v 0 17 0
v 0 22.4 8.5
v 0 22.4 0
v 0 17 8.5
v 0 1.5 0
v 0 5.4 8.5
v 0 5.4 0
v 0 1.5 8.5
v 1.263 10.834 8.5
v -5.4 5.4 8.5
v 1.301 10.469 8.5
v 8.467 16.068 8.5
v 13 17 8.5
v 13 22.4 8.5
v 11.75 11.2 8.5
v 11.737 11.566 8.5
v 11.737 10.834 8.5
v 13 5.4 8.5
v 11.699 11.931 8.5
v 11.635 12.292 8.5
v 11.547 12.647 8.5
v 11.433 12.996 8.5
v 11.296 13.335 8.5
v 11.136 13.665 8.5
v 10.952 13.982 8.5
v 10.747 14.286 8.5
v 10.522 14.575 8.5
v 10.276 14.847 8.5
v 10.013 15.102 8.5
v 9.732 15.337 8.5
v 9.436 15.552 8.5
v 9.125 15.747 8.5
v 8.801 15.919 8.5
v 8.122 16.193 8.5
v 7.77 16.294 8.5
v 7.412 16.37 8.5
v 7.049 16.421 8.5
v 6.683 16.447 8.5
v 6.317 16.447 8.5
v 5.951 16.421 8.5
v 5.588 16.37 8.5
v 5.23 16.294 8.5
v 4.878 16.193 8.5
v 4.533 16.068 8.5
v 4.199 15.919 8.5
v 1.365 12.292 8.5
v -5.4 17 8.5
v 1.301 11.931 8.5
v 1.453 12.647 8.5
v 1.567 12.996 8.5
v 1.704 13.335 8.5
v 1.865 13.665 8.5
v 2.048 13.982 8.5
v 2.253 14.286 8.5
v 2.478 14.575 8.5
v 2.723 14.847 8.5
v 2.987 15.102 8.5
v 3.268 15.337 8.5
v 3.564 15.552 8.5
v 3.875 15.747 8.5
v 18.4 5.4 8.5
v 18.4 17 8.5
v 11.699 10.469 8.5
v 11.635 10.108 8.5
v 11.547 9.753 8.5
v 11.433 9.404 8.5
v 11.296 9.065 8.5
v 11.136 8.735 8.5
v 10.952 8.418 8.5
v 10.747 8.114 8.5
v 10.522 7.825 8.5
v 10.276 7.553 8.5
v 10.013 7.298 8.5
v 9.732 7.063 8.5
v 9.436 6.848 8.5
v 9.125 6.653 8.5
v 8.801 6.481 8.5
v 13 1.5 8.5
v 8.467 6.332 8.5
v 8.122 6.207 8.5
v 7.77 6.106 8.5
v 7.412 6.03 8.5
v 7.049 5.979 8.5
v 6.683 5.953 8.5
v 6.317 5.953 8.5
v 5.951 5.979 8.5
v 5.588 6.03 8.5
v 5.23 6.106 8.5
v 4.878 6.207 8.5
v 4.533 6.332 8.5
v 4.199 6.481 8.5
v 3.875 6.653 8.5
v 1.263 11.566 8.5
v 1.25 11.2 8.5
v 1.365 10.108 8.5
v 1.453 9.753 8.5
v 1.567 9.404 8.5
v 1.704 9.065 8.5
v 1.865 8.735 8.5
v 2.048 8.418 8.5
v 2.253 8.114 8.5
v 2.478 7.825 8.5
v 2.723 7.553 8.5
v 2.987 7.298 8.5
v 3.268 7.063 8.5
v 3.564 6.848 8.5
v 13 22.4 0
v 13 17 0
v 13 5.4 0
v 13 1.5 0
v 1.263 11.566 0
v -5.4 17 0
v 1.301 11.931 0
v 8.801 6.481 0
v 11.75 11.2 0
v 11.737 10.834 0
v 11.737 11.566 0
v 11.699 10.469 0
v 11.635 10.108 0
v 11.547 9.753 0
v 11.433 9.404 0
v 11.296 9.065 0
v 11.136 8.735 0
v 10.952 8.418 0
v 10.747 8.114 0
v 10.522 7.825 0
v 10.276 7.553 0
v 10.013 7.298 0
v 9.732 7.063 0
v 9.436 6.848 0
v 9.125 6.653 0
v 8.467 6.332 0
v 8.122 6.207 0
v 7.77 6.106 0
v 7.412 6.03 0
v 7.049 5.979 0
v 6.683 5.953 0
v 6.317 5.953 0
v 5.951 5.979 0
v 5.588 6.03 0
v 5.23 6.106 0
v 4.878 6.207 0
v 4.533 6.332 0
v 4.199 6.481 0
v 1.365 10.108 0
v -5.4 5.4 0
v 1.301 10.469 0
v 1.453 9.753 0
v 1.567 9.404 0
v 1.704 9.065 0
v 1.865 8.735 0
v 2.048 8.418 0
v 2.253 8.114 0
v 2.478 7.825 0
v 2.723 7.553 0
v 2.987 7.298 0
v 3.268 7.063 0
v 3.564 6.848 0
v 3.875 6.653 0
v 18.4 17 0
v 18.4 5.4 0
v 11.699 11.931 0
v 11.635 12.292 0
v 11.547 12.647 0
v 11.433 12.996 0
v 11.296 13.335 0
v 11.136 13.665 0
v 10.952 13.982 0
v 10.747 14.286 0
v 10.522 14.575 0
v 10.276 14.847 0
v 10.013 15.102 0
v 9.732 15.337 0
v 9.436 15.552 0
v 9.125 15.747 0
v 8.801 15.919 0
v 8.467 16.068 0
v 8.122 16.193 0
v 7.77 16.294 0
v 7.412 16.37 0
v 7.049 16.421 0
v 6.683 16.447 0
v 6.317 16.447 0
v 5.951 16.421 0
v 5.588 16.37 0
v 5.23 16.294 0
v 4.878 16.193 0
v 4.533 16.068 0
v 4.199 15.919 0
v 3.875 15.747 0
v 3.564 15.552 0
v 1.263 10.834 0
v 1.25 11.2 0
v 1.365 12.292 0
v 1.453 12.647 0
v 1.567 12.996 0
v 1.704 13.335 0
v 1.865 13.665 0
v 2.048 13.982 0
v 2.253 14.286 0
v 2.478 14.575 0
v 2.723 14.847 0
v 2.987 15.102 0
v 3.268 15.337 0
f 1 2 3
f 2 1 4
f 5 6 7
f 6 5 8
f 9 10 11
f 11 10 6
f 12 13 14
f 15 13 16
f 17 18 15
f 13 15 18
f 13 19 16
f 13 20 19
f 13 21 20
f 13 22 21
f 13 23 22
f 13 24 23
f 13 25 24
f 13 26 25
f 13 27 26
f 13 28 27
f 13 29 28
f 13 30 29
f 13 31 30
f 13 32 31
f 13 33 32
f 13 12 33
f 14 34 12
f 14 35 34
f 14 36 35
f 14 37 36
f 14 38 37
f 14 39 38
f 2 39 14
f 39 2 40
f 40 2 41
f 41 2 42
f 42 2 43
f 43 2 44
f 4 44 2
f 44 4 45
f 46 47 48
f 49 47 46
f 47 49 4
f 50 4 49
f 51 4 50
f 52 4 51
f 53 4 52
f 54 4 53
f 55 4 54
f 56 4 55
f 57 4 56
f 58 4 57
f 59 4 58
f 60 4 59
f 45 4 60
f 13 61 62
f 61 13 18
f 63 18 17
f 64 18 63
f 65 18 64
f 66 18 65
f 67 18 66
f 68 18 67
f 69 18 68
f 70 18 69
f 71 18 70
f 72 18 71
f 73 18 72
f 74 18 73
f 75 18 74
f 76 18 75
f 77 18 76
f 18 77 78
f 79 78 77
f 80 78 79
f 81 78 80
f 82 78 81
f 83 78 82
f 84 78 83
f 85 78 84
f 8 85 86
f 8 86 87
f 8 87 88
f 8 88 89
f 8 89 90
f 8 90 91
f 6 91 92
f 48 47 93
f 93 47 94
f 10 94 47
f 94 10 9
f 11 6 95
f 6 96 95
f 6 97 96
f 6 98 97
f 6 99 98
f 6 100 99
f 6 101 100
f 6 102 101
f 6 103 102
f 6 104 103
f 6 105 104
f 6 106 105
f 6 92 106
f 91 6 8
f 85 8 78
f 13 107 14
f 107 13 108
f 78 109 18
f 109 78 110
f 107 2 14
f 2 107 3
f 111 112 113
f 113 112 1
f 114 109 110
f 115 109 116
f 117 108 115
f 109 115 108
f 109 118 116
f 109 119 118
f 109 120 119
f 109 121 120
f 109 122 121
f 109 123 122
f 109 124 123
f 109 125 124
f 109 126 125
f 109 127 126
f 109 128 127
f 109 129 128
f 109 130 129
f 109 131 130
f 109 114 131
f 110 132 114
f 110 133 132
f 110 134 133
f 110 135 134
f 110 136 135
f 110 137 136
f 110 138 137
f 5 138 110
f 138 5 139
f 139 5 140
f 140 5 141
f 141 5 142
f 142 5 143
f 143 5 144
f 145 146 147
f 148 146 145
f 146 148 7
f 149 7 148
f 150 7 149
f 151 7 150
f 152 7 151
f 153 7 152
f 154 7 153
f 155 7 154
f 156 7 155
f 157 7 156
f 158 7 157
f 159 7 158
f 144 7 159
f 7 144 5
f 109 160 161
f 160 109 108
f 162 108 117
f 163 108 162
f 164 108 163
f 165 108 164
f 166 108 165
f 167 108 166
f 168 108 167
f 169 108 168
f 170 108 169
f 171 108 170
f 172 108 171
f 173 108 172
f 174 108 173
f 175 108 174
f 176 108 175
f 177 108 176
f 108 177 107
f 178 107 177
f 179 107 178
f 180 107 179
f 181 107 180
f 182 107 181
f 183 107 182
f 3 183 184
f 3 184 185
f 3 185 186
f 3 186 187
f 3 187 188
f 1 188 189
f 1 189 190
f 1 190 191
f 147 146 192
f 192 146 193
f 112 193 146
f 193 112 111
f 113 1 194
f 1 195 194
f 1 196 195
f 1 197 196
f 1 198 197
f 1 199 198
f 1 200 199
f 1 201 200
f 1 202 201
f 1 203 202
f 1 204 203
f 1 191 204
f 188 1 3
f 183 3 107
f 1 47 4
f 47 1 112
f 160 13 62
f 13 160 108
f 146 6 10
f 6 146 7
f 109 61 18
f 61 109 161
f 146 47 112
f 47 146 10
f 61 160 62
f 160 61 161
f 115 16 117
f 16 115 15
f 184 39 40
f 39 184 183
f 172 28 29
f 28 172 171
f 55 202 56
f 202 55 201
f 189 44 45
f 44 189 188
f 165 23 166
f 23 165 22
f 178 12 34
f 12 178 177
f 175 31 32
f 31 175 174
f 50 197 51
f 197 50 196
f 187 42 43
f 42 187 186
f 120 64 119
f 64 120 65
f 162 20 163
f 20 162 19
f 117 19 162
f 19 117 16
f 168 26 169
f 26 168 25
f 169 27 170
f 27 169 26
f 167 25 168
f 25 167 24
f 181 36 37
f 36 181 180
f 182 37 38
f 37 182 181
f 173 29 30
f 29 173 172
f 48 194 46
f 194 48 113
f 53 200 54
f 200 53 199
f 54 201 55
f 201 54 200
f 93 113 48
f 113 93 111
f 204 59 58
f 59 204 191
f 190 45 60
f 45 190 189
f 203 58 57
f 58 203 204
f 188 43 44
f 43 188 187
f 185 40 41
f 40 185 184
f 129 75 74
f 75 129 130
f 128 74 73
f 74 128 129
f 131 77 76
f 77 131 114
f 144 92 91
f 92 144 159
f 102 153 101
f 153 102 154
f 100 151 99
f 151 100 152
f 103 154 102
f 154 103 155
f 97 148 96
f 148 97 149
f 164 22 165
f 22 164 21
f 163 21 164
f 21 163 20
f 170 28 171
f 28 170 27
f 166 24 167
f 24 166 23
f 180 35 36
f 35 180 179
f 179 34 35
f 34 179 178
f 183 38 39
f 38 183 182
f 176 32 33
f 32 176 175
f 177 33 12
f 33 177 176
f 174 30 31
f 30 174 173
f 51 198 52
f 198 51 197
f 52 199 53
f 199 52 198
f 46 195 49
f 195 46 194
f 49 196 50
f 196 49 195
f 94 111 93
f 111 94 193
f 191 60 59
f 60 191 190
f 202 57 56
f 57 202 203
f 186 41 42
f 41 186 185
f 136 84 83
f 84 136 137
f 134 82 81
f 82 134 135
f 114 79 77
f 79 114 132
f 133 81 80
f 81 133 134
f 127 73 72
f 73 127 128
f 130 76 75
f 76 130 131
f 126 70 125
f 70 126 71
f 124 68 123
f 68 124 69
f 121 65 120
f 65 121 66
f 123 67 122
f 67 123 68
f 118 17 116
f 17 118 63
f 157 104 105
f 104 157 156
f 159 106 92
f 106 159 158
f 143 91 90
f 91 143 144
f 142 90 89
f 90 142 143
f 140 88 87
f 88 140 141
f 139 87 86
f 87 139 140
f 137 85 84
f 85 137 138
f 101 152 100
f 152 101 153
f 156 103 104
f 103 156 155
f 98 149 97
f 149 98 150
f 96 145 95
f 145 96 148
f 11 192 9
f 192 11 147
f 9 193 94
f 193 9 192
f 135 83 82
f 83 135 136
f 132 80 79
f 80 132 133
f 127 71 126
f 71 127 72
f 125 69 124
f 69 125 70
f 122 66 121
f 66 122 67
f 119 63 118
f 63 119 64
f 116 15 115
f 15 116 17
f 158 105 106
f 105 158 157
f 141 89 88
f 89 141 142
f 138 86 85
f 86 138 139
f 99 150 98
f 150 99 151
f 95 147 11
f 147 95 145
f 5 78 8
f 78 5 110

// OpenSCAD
$fn = 90;

wallThickness = 5.4;
centerholeDiameter = 10.5;
screwDiameter = 2.75;
xWidth = 13;
yWidth = 11.6;
screwHoleOffset = .5;
heigth = 8.5;

difference(){
    //make the cross piece
    union(){
        cube([xWidth, yWidth+2*wallThickness, heigth]);
        translate([-wallThickness,wallThickness,0])
            rotate([0,0,-90])
                translate([-yWidth,0,0])
                    cube([yWidth, xWidth+2*wallThickness, heigth]);
    }
    //cut the center hole
    translate([xWidth/2,(yWidth+2*wallThickness)/2,-.5])
        cylinder(d = centerholeDiameter, h=heigth+1 );
    //cut the screw holes
/*translate([xWidth/2,(yWidth+2*wallThickness)/2-centerholeDiameter/2-screwDiameter/2-screwHoleOffset,-.5])
    cylinder(d = screwDiameter, h=heigth+1 );
translate([xWidth/2,(yWidth+2*wallThickness)/2+centerholeDiameter/2+screwDiameter/2+screwHoleOffset,-.5])
    cylinder(d = screwDiameter, h=heigth+1 );
translate([xWidth/2+centerholeDiameter/2+screwDiameter/2+screwHoleOffset,(yWidth+2*wallThickness)/2,-.5])
    cylinder(d = screwDiameter, h=heigth+1 );
translate([xWidth/2-centerholeDiameter/2-screwDiameter/2-screwHoleOffset,(yWidth+2*wallThickness)/2,-.5])
    cylinder(d = screwDiameter, h=heigth+1 );*/
    cube([xWidth, 1.5, heigth]);
}
